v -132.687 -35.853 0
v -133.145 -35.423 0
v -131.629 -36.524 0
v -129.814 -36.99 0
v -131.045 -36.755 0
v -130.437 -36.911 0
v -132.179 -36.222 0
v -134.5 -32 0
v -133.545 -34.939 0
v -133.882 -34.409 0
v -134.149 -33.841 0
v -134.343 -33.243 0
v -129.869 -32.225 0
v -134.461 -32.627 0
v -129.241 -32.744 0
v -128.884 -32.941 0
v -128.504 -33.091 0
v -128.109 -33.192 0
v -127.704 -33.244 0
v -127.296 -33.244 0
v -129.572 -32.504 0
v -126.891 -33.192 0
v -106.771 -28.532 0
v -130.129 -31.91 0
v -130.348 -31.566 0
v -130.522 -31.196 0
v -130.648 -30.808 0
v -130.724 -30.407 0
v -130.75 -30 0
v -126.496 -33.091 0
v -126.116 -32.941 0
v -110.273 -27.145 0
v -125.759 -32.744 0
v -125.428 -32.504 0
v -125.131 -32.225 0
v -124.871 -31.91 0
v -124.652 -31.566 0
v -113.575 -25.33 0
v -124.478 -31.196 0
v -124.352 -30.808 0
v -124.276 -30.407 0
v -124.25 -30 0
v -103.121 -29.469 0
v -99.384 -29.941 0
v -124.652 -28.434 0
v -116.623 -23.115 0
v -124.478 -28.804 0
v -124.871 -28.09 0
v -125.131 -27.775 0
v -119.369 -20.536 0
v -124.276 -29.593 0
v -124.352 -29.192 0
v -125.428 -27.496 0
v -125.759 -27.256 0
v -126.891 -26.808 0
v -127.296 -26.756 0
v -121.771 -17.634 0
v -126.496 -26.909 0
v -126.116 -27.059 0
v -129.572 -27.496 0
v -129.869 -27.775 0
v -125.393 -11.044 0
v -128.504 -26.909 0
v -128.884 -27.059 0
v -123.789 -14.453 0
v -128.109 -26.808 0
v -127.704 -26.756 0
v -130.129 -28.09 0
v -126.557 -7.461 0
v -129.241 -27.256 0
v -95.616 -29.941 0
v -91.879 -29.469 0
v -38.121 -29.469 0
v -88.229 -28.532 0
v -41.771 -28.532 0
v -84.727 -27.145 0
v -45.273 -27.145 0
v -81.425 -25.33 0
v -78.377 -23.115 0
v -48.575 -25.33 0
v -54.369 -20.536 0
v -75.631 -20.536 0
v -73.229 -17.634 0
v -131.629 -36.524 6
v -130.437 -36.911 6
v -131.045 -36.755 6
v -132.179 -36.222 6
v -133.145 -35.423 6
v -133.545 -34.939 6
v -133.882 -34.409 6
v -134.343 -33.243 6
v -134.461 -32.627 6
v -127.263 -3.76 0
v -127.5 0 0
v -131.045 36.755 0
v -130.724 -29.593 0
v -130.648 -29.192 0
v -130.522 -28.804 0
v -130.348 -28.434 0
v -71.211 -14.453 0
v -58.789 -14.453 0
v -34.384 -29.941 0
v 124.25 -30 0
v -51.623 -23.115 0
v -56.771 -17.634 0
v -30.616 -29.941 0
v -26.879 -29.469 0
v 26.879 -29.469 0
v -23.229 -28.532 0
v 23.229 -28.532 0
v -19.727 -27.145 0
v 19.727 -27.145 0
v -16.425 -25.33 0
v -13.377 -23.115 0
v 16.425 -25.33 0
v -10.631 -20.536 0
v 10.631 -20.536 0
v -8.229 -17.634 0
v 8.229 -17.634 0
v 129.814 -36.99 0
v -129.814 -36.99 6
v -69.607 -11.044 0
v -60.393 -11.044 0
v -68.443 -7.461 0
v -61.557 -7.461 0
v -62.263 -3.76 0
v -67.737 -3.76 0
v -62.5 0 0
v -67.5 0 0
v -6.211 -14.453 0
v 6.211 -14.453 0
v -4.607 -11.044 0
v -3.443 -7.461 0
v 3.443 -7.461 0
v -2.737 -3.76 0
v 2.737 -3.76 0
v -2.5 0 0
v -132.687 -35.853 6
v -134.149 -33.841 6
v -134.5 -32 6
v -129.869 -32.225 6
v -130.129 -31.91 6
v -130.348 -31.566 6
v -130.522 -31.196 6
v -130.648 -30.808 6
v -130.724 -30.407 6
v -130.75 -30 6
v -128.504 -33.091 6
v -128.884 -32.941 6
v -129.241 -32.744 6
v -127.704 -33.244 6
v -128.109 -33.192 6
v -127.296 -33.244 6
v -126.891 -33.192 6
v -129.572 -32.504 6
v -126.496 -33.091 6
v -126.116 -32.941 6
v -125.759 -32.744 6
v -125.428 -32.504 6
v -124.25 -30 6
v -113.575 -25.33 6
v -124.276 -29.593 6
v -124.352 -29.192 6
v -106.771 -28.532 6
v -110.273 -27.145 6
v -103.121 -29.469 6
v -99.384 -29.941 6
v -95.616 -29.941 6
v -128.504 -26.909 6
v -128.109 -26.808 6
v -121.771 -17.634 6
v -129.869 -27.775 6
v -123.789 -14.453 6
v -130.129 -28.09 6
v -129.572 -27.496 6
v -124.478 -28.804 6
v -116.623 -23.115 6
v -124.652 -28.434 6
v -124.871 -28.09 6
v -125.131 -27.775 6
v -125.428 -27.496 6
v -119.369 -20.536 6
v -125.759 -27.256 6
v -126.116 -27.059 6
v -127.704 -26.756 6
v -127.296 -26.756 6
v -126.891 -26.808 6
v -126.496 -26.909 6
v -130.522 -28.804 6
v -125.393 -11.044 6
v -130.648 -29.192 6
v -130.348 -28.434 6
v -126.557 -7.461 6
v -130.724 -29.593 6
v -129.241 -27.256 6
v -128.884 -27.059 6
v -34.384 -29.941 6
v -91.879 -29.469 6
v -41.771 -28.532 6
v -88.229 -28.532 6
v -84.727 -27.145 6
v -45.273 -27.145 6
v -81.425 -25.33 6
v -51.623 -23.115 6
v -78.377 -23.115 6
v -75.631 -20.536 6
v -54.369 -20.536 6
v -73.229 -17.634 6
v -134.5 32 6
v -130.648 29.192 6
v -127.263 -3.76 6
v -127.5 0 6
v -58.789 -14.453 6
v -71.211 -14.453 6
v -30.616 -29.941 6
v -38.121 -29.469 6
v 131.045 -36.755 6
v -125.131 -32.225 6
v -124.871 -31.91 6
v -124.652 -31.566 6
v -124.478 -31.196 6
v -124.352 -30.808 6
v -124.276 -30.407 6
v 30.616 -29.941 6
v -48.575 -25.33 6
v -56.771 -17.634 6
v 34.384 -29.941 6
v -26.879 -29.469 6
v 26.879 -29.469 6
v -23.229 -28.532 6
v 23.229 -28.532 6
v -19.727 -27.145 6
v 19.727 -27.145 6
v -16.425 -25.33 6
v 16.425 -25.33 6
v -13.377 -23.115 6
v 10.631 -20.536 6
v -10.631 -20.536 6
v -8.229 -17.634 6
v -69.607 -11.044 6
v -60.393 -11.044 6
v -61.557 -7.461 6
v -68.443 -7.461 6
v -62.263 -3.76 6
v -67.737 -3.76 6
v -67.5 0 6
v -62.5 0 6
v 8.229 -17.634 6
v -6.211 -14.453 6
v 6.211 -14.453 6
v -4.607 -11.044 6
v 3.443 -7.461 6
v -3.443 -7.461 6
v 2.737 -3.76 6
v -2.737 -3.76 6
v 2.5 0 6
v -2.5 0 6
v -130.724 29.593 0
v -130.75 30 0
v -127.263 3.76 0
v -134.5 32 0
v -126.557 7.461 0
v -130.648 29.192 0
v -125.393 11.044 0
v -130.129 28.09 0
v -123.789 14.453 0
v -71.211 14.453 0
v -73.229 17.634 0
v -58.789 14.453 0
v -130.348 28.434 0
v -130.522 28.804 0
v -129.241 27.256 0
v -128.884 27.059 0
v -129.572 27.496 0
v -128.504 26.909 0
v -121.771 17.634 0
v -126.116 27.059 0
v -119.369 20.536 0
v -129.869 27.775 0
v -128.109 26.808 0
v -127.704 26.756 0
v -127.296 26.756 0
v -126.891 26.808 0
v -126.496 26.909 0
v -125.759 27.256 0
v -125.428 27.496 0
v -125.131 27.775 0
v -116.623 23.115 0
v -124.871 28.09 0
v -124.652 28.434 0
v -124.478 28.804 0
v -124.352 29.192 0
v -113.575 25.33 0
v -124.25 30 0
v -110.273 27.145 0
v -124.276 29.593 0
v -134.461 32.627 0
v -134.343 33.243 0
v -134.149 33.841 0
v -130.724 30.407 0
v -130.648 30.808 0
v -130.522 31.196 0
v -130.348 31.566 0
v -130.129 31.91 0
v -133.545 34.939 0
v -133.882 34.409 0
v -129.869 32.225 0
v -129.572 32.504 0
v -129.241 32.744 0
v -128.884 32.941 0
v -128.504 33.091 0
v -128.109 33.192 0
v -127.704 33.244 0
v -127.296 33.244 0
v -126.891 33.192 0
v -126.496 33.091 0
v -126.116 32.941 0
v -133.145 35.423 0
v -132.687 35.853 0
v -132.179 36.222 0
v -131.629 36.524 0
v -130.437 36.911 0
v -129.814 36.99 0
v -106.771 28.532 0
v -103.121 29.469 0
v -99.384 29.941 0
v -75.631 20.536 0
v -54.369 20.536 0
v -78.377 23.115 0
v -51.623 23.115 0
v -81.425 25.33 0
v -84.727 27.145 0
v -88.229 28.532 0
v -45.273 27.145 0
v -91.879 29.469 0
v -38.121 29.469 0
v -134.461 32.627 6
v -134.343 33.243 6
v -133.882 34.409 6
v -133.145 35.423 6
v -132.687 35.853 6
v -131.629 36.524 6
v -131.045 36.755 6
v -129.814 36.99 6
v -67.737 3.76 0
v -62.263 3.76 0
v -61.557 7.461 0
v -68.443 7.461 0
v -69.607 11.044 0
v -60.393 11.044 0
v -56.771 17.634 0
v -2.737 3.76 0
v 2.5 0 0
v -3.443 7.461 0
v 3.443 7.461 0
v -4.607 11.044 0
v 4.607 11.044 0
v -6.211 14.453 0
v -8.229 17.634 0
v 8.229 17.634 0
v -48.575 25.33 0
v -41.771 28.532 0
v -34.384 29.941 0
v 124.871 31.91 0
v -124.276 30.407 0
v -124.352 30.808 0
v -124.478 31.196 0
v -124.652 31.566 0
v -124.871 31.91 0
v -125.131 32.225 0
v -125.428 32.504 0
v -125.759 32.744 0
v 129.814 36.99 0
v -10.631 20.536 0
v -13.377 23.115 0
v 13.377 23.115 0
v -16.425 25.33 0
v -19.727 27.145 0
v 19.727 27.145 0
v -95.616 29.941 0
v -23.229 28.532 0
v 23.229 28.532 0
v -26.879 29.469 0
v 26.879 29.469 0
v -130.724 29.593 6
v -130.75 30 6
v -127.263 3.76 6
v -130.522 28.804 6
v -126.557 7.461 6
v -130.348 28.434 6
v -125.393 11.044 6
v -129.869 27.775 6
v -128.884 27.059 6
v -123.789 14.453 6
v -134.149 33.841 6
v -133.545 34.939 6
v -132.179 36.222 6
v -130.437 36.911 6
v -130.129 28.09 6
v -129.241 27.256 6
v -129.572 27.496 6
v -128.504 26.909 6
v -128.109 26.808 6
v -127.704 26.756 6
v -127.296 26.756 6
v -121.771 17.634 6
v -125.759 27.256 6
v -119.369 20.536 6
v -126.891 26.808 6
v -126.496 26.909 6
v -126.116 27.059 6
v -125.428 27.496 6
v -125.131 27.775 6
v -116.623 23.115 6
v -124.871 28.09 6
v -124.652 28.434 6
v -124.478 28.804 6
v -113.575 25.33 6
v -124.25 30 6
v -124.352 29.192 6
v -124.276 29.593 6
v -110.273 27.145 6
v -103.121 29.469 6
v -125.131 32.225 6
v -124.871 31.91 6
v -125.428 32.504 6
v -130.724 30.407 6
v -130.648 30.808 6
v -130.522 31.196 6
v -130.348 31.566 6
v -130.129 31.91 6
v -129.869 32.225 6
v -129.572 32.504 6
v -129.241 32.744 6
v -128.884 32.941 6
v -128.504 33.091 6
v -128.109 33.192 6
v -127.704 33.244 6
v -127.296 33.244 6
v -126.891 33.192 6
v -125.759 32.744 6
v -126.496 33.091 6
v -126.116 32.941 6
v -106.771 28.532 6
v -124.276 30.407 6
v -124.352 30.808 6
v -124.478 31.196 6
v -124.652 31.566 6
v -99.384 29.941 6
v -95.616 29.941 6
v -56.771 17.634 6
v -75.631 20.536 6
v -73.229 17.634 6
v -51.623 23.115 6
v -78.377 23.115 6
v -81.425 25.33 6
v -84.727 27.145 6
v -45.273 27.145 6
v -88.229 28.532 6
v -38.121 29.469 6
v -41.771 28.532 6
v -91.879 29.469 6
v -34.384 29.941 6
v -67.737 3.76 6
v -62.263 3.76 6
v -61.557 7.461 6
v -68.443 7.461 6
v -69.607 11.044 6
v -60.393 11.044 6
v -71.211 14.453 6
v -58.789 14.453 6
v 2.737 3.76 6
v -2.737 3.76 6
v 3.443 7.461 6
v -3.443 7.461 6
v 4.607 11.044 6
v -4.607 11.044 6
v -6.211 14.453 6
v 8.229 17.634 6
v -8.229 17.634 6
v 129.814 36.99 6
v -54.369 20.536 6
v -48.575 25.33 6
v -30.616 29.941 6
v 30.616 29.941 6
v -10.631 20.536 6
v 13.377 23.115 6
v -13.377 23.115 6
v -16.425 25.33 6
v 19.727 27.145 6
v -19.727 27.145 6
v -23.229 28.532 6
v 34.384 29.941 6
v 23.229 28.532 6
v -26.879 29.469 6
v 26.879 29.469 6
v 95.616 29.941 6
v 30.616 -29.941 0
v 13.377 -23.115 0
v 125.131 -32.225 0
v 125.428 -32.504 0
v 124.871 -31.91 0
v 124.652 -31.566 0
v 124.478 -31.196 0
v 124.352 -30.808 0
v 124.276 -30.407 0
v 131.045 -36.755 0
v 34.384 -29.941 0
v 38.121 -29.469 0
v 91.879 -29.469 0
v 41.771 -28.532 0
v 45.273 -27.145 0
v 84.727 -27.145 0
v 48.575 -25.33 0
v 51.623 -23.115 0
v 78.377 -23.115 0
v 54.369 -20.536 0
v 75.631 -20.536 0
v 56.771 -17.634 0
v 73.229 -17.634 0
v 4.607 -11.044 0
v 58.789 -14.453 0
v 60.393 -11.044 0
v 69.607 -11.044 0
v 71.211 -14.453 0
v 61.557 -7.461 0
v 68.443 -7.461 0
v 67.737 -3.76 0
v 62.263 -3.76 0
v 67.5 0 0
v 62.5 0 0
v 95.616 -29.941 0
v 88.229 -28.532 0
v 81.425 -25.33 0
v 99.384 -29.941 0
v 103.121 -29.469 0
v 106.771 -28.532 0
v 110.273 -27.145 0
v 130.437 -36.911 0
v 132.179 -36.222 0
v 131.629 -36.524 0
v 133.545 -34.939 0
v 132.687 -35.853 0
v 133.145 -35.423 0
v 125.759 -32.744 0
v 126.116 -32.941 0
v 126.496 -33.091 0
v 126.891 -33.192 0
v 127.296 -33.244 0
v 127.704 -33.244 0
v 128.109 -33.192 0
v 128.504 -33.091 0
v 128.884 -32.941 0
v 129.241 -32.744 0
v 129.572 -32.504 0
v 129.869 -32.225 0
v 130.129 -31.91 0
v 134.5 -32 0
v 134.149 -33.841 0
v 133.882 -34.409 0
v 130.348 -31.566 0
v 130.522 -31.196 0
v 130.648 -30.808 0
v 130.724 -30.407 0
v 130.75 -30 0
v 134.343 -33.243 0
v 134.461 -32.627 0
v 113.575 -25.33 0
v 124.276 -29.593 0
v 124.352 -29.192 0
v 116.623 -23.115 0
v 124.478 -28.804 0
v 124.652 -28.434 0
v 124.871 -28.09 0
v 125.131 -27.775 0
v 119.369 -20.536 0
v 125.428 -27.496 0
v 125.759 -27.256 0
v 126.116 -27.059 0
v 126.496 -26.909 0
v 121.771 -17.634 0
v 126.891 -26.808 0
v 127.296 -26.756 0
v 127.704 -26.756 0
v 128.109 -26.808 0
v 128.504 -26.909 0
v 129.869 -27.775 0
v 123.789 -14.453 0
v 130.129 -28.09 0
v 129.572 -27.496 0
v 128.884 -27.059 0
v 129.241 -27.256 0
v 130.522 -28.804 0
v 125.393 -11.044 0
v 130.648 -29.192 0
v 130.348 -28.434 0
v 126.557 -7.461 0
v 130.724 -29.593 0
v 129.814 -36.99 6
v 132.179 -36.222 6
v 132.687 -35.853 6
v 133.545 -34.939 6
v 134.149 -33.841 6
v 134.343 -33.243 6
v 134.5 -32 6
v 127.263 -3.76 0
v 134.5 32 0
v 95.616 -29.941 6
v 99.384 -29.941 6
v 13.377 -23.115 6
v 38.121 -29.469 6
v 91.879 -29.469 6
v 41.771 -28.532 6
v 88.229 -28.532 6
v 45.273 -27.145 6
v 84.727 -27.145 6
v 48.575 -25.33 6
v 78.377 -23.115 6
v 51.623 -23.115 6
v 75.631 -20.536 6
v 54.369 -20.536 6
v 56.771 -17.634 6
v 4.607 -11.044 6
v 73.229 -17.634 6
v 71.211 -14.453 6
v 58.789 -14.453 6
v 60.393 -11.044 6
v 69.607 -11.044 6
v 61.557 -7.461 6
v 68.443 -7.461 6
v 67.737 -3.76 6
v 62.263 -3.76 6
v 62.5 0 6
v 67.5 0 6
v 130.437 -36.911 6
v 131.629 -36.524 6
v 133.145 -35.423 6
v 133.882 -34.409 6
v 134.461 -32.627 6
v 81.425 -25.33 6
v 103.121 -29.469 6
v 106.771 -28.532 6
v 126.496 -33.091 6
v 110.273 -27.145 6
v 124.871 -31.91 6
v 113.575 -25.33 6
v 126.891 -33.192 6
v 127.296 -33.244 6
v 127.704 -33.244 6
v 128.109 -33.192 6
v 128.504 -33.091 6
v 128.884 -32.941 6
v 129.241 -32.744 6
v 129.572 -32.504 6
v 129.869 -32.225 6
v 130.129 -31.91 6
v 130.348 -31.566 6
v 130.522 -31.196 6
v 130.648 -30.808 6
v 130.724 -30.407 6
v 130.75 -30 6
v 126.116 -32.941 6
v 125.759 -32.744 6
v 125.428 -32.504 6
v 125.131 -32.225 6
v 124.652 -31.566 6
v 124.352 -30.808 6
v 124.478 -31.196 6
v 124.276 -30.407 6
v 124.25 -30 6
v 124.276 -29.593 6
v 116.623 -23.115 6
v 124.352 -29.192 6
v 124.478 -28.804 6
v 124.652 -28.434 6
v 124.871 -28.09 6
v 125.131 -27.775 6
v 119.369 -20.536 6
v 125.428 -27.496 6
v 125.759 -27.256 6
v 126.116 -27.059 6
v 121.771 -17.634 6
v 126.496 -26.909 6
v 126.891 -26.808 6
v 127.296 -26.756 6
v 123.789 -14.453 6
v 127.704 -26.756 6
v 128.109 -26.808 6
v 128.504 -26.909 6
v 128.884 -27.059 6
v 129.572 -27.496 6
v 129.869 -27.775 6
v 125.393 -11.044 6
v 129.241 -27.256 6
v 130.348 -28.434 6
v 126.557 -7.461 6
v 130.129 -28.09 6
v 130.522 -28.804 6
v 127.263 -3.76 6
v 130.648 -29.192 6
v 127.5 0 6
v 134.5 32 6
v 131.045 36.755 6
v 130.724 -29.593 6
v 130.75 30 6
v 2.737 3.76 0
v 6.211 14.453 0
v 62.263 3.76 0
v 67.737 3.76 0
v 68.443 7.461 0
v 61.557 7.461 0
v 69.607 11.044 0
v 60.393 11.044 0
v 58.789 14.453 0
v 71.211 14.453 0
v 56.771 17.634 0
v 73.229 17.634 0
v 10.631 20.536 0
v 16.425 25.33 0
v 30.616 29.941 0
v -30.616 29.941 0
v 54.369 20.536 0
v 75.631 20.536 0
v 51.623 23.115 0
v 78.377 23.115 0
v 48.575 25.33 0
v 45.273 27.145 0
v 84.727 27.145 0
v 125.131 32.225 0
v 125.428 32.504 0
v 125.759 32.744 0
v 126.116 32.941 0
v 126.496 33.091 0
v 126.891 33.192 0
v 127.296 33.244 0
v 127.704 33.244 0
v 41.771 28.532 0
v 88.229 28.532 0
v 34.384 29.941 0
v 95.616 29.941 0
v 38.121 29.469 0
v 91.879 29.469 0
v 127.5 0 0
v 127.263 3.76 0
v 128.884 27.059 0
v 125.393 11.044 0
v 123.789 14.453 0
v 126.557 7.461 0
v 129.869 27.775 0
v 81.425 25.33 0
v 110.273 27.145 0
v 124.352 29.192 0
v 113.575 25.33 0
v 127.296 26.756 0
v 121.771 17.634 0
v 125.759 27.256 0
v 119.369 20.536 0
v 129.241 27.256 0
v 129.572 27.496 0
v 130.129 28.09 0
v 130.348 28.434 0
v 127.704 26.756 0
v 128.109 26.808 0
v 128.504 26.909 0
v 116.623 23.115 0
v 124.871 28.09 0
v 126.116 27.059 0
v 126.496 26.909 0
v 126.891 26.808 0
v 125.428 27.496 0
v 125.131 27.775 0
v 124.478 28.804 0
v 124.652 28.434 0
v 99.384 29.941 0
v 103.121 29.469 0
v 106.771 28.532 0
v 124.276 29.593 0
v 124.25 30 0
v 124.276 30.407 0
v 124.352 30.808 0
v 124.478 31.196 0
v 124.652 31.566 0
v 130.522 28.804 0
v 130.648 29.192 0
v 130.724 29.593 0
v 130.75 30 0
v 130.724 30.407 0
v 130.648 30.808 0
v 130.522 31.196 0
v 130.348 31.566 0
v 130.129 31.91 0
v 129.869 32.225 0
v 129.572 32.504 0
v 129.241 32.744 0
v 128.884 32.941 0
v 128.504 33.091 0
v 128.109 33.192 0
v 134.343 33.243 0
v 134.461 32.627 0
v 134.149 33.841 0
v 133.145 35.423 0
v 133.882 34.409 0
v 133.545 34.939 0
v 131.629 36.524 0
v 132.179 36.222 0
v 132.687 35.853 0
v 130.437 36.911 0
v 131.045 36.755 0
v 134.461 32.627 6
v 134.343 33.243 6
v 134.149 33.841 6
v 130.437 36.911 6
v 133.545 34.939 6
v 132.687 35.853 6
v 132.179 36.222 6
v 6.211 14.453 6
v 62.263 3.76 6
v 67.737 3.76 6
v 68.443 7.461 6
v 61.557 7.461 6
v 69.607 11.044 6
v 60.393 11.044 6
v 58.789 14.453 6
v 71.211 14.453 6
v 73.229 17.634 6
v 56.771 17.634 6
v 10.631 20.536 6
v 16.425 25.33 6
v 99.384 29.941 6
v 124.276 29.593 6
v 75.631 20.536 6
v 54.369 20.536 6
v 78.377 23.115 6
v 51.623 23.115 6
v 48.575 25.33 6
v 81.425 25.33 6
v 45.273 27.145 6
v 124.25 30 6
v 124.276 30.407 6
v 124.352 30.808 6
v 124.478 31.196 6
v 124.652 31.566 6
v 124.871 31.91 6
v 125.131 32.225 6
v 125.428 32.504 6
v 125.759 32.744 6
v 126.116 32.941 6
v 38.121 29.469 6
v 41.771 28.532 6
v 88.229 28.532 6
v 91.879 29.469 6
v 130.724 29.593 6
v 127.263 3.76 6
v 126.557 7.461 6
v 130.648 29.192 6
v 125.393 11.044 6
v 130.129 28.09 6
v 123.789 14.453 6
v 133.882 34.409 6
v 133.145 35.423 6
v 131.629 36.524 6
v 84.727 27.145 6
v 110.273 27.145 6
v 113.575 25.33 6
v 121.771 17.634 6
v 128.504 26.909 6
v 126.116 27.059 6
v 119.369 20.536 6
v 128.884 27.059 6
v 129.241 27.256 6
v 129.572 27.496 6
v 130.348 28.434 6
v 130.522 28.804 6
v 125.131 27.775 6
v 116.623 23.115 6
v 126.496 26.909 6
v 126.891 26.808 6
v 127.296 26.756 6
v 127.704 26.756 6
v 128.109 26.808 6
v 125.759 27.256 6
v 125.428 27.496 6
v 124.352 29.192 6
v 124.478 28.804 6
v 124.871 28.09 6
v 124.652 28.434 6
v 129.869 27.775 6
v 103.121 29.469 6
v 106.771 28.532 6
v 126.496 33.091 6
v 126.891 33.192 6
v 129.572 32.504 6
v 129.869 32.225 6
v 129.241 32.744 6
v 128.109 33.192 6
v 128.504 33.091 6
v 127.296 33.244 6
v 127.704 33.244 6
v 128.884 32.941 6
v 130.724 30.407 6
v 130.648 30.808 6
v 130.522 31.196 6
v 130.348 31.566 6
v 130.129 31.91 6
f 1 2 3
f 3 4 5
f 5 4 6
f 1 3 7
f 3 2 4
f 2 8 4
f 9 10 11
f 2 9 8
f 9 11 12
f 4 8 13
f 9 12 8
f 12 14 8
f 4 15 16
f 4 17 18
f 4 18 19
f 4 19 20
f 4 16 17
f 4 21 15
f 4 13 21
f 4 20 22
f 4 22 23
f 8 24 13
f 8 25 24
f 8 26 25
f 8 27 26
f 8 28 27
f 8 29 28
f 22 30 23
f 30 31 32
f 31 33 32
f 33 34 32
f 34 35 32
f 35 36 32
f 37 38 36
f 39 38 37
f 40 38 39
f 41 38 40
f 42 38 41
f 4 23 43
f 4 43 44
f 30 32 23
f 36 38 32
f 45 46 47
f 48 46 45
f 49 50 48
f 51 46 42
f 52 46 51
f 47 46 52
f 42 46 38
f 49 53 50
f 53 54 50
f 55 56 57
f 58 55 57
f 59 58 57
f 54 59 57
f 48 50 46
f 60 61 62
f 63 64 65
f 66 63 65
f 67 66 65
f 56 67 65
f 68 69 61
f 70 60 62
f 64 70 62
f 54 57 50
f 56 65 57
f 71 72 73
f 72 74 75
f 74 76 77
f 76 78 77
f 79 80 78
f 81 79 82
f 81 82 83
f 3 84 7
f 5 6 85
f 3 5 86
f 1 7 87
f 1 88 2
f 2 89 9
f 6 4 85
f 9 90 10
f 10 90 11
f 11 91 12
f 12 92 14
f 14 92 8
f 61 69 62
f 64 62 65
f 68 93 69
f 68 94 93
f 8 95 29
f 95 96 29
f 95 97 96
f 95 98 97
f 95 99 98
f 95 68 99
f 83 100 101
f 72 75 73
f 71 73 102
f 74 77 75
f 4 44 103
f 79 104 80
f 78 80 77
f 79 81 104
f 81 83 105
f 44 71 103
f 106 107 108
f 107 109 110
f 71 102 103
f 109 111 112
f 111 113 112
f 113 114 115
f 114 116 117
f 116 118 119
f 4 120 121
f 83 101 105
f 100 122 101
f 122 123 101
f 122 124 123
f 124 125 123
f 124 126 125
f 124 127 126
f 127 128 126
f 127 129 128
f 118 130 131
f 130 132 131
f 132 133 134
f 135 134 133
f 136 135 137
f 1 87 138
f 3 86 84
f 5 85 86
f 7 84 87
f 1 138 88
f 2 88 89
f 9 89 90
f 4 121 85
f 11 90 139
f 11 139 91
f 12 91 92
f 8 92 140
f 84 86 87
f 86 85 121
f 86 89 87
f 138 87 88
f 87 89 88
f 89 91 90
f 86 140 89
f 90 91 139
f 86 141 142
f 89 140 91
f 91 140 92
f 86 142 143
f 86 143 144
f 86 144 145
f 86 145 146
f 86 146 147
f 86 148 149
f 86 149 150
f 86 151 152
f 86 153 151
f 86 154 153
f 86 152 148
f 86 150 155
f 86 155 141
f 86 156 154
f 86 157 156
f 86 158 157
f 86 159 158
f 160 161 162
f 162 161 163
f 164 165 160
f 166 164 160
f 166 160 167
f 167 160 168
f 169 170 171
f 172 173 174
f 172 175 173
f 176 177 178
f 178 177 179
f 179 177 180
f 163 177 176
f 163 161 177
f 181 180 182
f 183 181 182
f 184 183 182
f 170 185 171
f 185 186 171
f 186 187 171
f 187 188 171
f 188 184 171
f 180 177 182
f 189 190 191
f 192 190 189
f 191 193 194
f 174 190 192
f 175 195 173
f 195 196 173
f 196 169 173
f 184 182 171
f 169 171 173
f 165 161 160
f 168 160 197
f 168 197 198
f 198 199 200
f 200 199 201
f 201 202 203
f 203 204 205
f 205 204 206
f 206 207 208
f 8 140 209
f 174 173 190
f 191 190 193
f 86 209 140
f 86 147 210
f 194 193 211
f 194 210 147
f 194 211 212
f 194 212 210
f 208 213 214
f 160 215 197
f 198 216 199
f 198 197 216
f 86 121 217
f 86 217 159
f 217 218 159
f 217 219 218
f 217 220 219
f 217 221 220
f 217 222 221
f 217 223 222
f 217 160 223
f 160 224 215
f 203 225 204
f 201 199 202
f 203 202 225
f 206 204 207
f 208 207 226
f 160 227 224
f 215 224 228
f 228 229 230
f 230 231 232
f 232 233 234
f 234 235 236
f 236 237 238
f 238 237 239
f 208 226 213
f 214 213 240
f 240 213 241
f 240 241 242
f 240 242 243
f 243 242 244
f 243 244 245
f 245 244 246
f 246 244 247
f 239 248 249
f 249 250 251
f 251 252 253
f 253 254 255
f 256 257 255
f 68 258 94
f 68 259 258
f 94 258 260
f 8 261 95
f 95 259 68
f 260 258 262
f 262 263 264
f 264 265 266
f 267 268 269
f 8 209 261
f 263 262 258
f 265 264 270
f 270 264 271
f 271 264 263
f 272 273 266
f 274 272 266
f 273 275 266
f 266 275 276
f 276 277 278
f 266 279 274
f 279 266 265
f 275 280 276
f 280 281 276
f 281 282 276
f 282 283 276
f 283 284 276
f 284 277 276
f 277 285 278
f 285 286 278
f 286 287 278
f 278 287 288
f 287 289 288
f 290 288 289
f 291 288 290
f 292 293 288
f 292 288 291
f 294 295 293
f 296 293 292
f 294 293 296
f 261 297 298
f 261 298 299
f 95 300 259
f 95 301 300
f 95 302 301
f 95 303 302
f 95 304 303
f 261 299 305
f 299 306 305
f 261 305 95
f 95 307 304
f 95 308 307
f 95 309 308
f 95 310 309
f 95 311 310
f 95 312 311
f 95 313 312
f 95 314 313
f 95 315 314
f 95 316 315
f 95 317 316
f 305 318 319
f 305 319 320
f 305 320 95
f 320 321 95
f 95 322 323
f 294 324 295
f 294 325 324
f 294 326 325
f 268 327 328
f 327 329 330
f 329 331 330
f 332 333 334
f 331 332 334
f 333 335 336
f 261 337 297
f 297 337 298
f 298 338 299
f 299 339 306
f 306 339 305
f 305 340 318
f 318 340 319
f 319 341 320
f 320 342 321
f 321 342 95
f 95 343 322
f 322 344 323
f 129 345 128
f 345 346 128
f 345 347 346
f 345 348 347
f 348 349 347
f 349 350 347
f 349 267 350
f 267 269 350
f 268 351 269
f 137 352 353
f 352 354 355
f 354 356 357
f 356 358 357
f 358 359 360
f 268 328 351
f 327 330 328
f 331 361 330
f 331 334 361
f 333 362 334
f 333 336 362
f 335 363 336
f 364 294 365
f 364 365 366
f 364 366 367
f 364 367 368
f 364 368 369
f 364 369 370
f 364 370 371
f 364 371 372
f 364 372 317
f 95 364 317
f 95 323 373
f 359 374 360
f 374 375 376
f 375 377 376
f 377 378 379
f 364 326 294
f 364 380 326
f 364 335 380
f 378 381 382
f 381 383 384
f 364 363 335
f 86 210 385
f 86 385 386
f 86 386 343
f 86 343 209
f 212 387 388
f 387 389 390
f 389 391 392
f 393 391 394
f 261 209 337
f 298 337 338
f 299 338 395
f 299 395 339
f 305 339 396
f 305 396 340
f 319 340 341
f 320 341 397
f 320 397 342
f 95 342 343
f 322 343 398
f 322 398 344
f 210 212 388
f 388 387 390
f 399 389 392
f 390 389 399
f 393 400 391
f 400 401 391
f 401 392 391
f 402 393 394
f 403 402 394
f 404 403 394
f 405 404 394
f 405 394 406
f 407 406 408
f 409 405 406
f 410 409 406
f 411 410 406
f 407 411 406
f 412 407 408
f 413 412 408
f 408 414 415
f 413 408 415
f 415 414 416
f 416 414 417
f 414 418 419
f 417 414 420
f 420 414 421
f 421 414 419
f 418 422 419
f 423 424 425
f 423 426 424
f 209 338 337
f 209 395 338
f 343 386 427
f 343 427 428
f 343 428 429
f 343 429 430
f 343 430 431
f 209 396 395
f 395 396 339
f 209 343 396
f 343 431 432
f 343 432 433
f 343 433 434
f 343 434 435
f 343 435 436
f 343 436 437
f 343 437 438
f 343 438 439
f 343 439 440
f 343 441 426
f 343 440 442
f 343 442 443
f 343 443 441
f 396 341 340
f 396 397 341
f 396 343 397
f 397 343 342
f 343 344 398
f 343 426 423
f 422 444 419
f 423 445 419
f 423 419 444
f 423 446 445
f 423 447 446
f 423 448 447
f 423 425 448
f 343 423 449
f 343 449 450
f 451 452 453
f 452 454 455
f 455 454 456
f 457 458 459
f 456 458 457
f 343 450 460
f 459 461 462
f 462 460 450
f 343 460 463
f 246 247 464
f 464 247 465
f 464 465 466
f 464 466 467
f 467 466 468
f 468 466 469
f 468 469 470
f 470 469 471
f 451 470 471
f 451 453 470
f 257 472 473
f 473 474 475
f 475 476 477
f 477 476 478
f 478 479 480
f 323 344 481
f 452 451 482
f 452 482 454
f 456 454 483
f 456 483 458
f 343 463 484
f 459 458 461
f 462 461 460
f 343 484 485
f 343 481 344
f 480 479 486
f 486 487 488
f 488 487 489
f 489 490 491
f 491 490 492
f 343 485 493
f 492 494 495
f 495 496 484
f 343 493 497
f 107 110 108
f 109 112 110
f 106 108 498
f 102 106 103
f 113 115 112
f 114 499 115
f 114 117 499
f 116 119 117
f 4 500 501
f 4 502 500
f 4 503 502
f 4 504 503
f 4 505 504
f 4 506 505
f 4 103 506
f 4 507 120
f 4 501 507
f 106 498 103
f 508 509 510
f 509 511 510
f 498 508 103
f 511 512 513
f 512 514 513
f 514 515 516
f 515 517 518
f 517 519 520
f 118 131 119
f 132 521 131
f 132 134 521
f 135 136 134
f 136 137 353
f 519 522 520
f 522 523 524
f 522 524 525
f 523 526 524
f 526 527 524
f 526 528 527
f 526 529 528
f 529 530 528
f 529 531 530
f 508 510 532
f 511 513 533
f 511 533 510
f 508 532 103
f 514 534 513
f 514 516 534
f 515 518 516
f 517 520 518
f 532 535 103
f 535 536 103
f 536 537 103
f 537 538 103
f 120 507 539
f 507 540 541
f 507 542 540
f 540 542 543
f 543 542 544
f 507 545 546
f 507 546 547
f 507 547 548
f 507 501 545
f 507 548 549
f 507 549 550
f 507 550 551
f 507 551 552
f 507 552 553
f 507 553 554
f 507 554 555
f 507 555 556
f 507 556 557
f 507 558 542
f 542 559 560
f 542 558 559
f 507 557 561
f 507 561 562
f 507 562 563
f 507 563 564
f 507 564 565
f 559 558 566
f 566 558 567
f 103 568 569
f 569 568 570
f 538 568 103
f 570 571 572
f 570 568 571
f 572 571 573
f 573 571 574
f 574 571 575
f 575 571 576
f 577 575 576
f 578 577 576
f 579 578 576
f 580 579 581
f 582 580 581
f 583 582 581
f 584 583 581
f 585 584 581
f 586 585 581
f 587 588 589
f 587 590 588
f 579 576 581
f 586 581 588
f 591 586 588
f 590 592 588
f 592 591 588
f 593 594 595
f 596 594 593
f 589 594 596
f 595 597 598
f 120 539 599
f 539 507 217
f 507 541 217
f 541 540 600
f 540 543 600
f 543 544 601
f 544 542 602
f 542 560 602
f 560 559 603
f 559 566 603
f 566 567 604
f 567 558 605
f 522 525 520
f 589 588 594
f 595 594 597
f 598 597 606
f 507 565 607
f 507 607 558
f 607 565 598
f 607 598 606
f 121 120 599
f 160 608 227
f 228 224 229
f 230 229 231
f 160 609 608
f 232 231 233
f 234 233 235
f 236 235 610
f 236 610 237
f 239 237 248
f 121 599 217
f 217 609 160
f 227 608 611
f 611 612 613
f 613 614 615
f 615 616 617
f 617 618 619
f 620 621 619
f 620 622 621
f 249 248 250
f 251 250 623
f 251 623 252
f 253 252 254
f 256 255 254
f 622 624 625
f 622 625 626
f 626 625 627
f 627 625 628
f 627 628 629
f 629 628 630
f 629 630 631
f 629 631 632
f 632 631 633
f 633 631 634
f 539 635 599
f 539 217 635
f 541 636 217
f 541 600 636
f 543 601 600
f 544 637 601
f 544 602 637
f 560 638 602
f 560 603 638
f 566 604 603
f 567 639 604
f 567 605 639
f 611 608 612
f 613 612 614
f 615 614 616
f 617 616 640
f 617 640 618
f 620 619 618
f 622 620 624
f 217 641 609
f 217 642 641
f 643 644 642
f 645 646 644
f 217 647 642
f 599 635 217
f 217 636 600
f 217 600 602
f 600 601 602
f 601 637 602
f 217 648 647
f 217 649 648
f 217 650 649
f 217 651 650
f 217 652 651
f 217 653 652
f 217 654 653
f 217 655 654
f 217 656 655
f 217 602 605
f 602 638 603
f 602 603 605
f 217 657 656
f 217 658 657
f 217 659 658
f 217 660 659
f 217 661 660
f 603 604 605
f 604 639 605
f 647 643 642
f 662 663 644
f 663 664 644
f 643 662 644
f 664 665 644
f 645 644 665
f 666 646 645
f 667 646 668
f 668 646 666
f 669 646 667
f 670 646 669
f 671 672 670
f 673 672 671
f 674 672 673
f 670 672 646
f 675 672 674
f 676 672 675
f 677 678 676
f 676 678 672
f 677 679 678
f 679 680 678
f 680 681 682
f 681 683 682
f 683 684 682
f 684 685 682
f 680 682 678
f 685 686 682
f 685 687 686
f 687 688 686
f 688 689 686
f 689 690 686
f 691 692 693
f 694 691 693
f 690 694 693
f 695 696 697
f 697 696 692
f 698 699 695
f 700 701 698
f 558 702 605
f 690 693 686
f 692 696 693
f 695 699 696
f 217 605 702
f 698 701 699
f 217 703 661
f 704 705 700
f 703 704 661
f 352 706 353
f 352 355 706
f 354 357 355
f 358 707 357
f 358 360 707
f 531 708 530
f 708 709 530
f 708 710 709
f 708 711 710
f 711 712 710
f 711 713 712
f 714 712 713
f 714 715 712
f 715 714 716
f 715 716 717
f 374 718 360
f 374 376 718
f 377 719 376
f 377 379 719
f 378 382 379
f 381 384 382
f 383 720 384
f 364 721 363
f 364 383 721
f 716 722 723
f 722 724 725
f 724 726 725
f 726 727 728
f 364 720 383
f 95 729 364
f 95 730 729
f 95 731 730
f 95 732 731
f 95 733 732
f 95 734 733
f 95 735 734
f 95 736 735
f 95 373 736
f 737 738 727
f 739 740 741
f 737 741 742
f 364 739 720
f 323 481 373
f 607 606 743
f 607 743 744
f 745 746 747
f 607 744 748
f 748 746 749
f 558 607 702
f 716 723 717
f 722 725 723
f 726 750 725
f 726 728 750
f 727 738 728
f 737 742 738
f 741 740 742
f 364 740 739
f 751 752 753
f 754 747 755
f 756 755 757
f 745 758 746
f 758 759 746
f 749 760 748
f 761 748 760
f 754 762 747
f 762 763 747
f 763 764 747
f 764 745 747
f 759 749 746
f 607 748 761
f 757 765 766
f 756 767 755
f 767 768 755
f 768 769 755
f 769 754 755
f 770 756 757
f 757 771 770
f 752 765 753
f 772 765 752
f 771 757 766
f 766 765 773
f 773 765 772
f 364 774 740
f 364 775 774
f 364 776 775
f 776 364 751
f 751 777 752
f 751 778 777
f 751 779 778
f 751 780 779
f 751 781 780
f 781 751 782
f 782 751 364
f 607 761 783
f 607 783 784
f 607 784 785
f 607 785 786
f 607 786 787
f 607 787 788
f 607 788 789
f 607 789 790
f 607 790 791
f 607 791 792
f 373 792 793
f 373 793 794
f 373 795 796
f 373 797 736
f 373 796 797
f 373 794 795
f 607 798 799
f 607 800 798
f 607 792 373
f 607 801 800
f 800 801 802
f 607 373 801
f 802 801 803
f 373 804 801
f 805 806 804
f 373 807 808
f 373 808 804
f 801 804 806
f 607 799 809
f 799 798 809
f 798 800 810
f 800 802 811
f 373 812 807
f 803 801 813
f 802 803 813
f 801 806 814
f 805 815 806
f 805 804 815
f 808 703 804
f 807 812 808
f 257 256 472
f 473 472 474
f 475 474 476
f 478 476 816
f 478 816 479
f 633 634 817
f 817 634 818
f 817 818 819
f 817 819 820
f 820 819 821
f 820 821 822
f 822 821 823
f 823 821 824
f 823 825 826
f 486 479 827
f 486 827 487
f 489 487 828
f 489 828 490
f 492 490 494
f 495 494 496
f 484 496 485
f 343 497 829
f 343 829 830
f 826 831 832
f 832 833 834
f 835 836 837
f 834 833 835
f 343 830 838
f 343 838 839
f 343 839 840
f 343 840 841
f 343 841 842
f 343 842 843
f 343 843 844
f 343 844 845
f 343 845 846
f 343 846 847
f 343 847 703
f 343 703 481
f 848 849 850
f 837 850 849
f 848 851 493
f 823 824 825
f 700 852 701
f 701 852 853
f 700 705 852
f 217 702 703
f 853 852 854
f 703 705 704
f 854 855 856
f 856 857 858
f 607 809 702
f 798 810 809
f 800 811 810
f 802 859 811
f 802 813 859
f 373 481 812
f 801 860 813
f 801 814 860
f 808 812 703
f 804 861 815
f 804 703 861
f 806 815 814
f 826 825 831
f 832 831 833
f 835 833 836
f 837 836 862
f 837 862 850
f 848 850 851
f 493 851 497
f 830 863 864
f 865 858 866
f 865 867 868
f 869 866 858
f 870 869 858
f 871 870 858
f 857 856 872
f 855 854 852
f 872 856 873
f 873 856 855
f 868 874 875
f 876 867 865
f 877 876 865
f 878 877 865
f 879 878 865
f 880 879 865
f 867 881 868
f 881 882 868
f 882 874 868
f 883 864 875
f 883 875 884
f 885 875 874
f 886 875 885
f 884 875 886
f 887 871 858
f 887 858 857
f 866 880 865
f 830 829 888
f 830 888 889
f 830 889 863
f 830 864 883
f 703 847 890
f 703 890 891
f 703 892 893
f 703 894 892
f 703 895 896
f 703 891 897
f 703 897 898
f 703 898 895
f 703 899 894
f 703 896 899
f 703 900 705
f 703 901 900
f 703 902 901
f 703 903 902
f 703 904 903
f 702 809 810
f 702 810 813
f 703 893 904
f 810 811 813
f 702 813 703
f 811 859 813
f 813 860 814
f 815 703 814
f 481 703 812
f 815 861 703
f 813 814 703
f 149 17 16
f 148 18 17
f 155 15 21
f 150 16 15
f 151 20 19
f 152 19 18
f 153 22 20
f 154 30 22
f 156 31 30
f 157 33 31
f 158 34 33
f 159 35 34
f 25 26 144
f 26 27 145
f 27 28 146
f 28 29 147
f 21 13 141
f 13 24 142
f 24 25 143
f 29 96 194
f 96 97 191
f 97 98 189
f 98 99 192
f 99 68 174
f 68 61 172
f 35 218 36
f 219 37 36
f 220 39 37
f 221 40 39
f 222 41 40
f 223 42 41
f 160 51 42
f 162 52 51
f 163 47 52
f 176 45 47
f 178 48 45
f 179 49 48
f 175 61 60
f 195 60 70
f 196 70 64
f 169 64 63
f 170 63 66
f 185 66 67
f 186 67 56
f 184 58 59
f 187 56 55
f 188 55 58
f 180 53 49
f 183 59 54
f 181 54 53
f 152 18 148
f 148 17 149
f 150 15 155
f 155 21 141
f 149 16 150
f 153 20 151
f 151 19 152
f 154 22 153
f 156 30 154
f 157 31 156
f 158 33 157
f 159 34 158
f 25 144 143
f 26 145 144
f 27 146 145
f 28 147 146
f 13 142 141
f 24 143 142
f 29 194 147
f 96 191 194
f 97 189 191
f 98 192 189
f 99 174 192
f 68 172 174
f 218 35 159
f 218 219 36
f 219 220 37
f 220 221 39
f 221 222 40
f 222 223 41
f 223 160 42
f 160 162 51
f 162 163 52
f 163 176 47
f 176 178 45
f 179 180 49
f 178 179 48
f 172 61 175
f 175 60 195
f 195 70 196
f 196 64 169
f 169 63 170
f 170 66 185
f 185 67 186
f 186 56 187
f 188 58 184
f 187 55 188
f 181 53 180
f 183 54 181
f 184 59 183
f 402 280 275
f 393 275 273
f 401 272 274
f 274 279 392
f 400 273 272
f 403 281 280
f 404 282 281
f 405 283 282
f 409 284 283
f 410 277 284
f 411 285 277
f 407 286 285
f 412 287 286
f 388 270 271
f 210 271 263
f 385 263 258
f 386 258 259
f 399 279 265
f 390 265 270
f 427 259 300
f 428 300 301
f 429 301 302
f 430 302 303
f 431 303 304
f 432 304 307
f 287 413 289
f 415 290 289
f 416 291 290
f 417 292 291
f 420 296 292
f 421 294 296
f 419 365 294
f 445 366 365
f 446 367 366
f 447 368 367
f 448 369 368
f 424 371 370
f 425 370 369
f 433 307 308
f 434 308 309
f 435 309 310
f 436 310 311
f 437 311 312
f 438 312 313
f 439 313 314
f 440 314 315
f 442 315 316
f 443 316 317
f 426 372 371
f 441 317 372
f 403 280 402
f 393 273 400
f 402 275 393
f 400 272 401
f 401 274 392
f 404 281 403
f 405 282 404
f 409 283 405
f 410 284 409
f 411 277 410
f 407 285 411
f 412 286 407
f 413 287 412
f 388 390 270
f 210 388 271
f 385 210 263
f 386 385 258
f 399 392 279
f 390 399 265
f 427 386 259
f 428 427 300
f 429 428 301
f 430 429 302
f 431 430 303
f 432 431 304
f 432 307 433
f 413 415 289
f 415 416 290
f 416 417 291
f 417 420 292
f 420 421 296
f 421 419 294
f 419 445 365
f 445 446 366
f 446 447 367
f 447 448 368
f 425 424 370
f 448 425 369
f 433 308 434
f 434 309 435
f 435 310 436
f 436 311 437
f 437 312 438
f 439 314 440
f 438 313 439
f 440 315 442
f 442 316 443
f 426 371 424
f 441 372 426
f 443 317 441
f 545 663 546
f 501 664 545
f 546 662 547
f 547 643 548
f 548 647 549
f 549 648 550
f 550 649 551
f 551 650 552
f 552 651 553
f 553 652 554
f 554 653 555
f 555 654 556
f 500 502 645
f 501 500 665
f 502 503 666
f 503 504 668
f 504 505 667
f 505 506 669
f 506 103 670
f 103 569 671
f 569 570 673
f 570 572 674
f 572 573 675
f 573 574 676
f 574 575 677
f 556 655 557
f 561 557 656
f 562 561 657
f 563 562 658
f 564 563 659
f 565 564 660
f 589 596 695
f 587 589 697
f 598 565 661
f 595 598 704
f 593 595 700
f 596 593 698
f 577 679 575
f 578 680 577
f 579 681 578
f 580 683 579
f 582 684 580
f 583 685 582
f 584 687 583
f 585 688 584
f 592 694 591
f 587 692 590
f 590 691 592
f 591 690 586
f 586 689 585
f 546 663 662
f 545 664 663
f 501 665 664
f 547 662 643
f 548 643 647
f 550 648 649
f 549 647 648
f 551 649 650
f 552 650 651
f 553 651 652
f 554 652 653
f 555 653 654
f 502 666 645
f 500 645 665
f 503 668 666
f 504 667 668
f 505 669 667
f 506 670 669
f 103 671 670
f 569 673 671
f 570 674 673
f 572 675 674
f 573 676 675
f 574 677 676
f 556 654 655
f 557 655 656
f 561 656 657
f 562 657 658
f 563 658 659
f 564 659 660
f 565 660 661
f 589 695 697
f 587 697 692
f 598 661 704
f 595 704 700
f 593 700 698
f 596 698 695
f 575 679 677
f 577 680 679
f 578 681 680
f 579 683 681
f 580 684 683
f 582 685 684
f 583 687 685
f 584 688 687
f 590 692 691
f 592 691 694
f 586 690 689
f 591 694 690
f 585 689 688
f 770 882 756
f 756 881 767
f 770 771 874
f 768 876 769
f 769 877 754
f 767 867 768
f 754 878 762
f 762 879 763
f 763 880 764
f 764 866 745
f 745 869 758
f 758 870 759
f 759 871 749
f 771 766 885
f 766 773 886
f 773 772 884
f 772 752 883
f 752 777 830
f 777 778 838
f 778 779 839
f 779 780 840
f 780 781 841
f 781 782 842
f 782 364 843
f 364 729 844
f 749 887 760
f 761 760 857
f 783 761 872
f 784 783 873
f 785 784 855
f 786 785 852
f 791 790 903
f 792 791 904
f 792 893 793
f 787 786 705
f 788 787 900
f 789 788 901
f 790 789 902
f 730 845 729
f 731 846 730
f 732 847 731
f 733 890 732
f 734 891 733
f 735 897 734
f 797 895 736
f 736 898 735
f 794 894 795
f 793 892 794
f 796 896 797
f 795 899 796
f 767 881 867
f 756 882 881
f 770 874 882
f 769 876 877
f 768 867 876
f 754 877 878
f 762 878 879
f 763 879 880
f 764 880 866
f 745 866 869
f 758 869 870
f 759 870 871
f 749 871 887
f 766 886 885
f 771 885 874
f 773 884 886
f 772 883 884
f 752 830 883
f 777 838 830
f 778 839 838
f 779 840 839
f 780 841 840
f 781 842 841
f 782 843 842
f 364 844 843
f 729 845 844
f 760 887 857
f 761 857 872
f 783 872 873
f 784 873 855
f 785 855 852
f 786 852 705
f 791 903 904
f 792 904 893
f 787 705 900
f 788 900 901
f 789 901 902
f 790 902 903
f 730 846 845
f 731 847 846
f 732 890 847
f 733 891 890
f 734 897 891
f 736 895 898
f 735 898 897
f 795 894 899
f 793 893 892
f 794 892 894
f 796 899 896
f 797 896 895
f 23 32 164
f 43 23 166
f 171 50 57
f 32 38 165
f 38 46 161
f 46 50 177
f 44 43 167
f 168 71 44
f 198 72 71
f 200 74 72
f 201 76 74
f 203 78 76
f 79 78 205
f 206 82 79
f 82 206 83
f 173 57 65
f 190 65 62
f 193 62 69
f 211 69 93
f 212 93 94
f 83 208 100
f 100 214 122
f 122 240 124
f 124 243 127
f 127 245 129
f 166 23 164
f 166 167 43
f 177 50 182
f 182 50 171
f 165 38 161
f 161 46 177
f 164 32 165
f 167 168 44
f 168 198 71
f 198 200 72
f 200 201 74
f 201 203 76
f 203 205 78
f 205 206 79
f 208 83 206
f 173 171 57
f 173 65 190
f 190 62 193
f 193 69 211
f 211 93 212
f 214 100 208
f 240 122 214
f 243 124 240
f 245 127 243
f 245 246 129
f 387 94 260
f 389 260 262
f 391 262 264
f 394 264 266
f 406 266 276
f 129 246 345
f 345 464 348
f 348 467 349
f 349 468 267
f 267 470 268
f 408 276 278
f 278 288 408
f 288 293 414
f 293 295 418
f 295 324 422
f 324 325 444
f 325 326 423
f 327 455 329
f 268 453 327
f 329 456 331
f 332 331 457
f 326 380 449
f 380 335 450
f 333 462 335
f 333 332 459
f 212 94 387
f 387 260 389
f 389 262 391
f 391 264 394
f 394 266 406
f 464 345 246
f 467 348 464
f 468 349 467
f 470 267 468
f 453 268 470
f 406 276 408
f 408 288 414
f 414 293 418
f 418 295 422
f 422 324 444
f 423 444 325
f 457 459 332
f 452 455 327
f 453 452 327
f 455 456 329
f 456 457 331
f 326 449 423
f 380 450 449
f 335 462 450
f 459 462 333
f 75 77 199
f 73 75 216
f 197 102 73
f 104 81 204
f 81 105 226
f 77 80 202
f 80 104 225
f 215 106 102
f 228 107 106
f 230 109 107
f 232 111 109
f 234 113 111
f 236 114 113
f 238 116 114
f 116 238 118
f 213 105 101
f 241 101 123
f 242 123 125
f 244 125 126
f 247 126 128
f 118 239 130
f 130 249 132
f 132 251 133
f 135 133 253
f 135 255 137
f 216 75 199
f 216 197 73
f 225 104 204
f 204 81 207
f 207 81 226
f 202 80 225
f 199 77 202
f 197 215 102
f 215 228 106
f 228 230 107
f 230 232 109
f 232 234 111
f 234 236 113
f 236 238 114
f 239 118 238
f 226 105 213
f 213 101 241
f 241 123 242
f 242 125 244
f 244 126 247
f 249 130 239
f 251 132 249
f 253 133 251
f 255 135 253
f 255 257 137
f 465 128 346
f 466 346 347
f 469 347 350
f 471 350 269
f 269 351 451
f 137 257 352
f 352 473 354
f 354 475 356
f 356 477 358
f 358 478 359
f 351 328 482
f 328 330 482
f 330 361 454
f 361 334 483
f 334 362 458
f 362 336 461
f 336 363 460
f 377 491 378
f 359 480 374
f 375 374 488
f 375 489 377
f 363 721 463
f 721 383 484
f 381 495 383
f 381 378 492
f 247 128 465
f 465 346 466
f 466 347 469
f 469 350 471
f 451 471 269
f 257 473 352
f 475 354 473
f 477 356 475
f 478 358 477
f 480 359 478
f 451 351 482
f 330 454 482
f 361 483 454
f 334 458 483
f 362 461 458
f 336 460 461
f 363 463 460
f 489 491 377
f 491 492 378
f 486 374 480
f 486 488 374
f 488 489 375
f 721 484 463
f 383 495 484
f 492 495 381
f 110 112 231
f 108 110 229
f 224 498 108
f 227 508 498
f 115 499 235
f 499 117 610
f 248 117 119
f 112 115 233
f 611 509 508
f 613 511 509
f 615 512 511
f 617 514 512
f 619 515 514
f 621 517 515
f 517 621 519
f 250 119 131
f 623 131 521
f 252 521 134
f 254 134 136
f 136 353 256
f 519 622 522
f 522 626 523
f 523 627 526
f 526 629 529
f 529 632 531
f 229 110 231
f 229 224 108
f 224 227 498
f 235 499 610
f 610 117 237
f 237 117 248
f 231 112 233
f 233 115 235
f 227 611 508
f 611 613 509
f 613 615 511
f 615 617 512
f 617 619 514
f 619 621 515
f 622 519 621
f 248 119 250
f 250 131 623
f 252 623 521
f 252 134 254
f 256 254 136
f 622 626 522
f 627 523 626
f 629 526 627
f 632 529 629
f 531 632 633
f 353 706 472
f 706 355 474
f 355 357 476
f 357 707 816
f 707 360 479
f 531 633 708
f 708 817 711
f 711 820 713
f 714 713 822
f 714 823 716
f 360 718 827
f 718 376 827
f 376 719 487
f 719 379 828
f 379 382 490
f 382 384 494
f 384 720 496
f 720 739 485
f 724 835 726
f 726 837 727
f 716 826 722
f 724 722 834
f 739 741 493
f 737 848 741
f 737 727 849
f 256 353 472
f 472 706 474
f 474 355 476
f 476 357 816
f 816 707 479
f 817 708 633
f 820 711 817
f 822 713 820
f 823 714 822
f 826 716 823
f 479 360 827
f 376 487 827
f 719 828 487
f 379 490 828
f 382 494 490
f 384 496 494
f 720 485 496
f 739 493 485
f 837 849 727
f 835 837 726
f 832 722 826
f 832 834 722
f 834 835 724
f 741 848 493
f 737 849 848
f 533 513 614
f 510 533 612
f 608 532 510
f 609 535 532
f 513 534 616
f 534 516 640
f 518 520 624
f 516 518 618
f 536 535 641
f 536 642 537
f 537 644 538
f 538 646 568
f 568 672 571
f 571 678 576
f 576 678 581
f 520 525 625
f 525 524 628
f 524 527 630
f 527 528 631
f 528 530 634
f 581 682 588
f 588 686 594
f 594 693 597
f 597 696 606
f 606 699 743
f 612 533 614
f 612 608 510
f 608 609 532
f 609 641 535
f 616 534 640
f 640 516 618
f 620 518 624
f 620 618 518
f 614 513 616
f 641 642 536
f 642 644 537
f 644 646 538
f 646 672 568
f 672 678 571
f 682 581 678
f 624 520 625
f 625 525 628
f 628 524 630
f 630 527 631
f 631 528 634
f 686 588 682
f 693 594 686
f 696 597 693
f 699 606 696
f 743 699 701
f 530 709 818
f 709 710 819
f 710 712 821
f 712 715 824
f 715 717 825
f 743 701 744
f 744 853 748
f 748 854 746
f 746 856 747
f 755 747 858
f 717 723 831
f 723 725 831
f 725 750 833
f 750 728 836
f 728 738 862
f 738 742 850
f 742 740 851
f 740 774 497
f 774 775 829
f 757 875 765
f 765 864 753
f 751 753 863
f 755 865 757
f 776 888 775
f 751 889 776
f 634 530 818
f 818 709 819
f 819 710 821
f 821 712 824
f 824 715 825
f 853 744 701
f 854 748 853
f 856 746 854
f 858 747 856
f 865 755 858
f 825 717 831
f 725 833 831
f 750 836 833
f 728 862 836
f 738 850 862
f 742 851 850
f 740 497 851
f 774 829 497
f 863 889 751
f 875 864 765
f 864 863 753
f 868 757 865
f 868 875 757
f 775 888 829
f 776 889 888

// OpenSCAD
$fn = 50;

difference() {
	union() {
		hull() {
			translate(v = [-129.5, 32.0, 0]) {
				cylinder(h = 6, r = 5);
			}
			translate(v = [129.5, 32.0, 0]) {
				cylinder(h = 6, r = 5);
			}
			translate(v = [-129.5, -32.0, 0]) {
				cylinder(h = 6, r = 5);
			}
			translate(v = [129.5, -32.0, 0]) {
				cylinder(h = 6, r = 5);
			}
		}
	}
	union() {
		translate(v = [-127.5, -30.0, -100.0]) {
			cylinder(h = 200, r = 3.25);
		}
		translate(v = [-127.5, 30.0, -100.0]) {
			cylinder(h = 200, r = 3.25);
		}
		translate(v = [127.5, -30.0, -100.0]) {
			cylinder(h = 200, r = 3.25);
		}
		translate(v = [127.5, 30.0, -100.0]) {
			cylinder(h = 200, r = 3.25);
		}
		translate(v = [-127.5, -30.0, -100.0]) {
			cylinder(h = 200, r = 1.8);
		}
		translate(v = [-127.5, 30.0, -100.0]) {
			cylinder(h = 200, r = 1.8);
		}
		translate(v = [127.5, -30.0, -100.0]) {
			cylinder(h = 200, r = 1.8);
		}
		translate(v = [127.5, 30.0, -100.0]) {
			cylinder(h = 200, r = 1.8);
		}
		translate(v = [-97.5, 0, 0.0]) {
			cylinder(h = 6, r = 30.0);
		}
		translate(v = [-32.5, 0, 0.0]) {
			cylinder(h = 6, r = 30.0);
		}
		translate(v = [32.5, 0, 0.0]) {
			cylinder(h = 6, r = 30.0);
		}
		translate(v = [97.5, 0, 0.0]) {
			cylinder(h = 6, r = 30.0);
		}
	}
}
